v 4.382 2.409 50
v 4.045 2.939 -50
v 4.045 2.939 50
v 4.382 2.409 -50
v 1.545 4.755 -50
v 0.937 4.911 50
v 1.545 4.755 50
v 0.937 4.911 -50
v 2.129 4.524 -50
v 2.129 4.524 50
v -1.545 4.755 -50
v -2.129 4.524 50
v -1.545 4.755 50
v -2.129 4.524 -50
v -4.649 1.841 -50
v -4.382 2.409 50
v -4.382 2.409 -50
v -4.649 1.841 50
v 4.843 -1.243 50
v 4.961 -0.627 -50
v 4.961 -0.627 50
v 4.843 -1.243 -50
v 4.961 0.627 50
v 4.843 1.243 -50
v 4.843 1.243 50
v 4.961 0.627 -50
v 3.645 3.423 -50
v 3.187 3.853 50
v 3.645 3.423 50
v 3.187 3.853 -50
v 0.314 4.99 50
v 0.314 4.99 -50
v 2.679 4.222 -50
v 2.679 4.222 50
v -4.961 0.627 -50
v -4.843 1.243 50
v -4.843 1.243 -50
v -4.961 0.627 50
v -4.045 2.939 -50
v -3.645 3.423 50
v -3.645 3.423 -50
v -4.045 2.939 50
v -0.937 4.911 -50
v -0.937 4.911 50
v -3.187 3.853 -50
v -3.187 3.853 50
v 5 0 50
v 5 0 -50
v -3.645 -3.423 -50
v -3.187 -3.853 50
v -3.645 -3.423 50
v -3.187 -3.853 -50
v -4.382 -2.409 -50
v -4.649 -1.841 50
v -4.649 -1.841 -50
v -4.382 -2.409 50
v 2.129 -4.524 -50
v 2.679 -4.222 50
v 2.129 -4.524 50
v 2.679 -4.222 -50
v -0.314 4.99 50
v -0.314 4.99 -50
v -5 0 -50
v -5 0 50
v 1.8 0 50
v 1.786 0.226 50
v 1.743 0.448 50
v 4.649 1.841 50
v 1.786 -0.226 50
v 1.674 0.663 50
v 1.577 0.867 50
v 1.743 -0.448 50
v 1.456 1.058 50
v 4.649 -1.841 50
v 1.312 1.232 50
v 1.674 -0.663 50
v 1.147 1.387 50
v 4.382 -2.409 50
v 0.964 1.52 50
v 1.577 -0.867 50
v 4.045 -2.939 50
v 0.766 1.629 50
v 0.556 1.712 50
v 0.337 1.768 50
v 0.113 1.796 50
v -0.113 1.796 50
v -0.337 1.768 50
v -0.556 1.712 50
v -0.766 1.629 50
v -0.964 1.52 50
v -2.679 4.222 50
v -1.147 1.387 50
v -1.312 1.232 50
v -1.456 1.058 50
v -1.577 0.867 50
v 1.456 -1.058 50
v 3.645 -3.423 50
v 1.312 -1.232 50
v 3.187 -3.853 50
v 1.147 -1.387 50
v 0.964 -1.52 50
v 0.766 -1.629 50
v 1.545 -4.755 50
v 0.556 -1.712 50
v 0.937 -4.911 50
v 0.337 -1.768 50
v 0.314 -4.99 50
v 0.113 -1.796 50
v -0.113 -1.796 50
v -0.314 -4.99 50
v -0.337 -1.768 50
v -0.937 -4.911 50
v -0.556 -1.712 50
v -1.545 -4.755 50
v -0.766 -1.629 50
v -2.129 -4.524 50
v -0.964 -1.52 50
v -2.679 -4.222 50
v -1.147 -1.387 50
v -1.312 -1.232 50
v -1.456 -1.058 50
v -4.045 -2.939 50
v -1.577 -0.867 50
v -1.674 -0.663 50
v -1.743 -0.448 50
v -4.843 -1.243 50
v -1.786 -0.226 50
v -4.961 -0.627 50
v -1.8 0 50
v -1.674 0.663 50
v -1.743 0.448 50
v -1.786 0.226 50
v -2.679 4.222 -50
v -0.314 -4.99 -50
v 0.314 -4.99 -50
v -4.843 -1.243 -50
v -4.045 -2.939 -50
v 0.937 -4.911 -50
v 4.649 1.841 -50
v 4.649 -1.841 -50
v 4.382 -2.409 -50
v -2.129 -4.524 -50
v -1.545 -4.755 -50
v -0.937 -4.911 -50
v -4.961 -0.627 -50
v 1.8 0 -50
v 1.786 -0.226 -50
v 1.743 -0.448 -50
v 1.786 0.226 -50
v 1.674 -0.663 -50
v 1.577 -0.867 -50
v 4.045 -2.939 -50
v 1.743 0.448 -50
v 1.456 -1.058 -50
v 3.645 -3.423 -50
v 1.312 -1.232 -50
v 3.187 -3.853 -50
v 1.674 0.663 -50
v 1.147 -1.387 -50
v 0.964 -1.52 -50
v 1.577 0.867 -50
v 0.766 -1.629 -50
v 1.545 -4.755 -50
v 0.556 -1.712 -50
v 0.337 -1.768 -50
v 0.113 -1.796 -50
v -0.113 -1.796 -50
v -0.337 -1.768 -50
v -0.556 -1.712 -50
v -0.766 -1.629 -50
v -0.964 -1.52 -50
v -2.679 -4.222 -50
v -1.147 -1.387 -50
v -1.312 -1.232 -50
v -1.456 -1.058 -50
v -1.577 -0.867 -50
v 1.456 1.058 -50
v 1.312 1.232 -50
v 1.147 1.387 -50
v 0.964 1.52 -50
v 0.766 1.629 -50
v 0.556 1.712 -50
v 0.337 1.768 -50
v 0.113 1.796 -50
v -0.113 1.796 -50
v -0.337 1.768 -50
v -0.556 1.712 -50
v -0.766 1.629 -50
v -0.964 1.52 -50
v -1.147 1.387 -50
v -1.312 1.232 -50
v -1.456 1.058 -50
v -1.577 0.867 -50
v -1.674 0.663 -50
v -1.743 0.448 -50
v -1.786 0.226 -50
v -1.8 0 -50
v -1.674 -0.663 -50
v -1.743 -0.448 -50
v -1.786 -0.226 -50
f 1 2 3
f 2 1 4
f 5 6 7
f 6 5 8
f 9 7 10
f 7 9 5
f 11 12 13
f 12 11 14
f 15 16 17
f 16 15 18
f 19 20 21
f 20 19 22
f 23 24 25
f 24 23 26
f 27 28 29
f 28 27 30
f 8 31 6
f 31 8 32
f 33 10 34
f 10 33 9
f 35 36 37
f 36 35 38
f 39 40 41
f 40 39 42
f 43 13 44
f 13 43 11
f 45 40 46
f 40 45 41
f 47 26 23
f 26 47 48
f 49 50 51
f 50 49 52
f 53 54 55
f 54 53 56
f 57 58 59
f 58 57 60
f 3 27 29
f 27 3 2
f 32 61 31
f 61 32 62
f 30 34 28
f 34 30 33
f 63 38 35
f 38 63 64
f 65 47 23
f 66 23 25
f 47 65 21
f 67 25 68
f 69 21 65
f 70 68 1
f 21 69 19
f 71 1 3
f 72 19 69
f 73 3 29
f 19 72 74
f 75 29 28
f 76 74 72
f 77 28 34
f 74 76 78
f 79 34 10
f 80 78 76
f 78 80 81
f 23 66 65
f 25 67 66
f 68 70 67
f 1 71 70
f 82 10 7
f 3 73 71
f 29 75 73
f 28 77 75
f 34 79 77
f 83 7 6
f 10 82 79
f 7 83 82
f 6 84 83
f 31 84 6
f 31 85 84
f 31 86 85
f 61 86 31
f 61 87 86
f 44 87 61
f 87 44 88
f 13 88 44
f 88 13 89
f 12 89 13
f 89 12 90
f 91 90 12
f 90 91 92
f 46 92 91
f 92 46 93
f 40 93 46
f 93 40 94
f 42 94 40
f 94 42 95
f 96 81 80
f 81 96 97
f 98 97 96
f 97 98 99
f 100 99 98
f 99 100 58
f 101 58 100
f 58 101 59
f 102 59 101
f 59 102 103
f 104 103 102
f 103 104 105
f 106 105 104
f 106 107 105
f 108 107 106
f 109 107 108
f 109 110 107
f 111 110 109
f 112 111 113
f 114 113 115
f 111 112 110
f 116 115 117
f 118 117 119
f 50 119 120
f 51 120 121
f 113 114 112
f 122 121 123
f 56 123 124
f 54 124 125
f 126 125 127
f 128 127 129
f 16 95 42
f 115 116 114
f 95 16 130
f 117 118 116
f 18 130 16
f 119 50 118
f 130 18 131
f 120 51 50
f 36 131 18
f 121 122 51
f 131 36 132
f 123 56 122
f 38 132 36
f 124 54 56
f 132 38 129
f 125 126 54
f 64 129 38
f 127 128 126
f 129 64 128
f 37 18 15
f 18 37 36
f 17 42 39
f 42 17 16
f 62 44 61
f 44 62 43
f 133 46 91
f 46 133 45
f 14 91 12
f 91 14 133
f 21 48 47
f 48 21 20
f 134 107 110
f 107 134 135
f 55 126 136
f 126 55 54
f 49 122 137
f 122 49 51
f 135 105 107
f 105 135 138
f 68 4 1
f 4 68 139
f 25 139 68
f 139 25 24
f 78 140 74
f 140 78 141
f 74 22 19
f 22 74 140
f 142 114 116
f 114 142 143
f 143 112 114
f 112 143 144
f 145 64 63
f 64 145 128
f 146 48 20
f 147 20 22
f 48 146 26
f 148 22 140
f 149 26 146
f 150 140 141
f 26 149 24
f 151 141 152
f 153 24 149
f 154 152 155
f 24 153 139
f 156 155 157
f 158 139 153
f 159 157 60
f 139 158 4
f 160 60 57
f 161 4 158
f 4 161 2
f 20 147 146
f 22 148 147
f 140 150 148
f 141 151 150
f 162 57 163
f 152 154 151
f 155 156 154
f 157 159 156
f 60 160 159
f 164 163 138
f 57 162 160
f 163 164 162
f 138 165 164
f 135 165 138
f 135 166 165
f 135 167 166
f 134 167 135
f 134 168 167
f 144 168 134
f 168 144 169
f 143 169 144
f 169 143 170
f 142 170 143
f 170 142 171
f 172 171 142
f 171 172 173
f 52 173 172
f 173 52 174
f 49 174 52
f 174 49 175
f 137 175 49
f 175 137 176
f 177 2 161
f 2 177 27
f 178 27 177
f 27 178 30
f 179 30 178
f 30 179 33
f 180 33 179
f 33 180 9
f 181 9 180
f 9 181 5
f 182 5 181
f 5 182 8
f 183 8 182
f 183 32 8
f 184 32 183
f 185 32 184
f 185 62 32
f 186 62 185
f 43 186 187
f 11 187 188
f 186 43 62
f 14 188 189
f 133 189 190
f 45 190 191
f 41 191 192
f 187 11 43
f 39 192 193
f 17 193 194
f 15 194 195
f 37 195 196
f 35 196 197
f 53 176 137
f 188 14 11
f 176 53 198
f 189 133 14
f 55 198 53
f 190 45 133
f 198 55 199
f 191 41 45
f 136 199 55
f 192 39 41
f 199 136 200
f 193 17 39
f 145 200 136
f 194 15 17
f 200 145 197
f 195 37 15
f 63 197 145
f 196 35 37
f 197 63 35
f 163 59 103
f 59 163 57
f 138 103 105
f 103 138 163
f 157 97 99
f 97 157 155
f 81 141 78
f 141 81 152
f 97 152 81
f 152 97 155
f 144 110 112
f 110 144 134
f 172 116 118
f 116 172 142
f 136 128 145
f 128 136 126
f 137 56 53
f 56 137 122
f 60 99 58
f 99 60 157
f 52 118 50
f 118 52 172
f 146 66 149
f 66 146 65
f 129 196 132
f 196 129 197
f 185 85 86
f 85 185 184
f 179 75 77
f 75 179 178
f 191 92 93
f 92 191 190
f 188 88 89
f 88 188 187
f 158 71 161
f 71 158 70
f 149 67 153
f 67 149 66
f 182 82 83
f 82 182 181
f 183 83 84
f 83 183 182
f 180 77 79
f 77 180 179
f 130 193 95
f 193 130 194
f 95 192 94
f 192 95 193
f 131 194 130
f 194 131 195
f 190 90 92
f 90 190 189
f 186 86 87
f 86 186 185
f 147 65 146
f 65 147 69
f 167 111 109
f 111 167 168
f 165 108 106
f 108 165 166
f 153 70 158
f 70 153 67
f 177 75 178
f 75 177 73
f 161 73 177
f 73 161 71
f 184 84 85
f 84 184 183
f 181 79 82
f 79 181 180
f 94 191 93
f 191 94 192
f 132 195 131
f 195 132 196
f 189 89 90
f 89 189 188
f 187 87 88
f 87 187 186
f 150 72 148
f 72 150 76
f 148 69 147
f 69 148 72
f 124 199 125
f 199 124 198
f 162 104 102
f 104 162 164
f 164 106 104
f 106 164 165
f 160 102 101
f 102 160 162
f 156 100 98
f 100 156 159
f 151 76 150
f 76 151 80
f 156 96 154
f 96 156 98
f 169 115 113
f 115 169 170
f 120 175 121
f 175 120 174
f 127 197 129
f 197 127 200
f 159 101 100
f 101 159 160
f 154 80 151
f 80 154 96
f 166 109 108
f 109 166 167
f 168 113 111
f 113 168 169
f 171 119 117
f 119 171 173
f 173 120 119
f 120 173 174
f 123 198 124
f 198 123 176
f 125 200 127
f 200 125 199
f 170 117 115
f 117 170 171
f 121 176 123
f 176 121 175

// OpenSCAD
$fn = 50;


difference() {
	union() {
		translate(v = [0, 0, -50.0000000000]) {
			cylinder(h = 100, r = 5.0000000000);
		}
	}
	union() {
		translate(v = [0, 0, -100.0000000000]) {
			cylinder(h = 200, r = 1.8000000000);
		}
	}
}
